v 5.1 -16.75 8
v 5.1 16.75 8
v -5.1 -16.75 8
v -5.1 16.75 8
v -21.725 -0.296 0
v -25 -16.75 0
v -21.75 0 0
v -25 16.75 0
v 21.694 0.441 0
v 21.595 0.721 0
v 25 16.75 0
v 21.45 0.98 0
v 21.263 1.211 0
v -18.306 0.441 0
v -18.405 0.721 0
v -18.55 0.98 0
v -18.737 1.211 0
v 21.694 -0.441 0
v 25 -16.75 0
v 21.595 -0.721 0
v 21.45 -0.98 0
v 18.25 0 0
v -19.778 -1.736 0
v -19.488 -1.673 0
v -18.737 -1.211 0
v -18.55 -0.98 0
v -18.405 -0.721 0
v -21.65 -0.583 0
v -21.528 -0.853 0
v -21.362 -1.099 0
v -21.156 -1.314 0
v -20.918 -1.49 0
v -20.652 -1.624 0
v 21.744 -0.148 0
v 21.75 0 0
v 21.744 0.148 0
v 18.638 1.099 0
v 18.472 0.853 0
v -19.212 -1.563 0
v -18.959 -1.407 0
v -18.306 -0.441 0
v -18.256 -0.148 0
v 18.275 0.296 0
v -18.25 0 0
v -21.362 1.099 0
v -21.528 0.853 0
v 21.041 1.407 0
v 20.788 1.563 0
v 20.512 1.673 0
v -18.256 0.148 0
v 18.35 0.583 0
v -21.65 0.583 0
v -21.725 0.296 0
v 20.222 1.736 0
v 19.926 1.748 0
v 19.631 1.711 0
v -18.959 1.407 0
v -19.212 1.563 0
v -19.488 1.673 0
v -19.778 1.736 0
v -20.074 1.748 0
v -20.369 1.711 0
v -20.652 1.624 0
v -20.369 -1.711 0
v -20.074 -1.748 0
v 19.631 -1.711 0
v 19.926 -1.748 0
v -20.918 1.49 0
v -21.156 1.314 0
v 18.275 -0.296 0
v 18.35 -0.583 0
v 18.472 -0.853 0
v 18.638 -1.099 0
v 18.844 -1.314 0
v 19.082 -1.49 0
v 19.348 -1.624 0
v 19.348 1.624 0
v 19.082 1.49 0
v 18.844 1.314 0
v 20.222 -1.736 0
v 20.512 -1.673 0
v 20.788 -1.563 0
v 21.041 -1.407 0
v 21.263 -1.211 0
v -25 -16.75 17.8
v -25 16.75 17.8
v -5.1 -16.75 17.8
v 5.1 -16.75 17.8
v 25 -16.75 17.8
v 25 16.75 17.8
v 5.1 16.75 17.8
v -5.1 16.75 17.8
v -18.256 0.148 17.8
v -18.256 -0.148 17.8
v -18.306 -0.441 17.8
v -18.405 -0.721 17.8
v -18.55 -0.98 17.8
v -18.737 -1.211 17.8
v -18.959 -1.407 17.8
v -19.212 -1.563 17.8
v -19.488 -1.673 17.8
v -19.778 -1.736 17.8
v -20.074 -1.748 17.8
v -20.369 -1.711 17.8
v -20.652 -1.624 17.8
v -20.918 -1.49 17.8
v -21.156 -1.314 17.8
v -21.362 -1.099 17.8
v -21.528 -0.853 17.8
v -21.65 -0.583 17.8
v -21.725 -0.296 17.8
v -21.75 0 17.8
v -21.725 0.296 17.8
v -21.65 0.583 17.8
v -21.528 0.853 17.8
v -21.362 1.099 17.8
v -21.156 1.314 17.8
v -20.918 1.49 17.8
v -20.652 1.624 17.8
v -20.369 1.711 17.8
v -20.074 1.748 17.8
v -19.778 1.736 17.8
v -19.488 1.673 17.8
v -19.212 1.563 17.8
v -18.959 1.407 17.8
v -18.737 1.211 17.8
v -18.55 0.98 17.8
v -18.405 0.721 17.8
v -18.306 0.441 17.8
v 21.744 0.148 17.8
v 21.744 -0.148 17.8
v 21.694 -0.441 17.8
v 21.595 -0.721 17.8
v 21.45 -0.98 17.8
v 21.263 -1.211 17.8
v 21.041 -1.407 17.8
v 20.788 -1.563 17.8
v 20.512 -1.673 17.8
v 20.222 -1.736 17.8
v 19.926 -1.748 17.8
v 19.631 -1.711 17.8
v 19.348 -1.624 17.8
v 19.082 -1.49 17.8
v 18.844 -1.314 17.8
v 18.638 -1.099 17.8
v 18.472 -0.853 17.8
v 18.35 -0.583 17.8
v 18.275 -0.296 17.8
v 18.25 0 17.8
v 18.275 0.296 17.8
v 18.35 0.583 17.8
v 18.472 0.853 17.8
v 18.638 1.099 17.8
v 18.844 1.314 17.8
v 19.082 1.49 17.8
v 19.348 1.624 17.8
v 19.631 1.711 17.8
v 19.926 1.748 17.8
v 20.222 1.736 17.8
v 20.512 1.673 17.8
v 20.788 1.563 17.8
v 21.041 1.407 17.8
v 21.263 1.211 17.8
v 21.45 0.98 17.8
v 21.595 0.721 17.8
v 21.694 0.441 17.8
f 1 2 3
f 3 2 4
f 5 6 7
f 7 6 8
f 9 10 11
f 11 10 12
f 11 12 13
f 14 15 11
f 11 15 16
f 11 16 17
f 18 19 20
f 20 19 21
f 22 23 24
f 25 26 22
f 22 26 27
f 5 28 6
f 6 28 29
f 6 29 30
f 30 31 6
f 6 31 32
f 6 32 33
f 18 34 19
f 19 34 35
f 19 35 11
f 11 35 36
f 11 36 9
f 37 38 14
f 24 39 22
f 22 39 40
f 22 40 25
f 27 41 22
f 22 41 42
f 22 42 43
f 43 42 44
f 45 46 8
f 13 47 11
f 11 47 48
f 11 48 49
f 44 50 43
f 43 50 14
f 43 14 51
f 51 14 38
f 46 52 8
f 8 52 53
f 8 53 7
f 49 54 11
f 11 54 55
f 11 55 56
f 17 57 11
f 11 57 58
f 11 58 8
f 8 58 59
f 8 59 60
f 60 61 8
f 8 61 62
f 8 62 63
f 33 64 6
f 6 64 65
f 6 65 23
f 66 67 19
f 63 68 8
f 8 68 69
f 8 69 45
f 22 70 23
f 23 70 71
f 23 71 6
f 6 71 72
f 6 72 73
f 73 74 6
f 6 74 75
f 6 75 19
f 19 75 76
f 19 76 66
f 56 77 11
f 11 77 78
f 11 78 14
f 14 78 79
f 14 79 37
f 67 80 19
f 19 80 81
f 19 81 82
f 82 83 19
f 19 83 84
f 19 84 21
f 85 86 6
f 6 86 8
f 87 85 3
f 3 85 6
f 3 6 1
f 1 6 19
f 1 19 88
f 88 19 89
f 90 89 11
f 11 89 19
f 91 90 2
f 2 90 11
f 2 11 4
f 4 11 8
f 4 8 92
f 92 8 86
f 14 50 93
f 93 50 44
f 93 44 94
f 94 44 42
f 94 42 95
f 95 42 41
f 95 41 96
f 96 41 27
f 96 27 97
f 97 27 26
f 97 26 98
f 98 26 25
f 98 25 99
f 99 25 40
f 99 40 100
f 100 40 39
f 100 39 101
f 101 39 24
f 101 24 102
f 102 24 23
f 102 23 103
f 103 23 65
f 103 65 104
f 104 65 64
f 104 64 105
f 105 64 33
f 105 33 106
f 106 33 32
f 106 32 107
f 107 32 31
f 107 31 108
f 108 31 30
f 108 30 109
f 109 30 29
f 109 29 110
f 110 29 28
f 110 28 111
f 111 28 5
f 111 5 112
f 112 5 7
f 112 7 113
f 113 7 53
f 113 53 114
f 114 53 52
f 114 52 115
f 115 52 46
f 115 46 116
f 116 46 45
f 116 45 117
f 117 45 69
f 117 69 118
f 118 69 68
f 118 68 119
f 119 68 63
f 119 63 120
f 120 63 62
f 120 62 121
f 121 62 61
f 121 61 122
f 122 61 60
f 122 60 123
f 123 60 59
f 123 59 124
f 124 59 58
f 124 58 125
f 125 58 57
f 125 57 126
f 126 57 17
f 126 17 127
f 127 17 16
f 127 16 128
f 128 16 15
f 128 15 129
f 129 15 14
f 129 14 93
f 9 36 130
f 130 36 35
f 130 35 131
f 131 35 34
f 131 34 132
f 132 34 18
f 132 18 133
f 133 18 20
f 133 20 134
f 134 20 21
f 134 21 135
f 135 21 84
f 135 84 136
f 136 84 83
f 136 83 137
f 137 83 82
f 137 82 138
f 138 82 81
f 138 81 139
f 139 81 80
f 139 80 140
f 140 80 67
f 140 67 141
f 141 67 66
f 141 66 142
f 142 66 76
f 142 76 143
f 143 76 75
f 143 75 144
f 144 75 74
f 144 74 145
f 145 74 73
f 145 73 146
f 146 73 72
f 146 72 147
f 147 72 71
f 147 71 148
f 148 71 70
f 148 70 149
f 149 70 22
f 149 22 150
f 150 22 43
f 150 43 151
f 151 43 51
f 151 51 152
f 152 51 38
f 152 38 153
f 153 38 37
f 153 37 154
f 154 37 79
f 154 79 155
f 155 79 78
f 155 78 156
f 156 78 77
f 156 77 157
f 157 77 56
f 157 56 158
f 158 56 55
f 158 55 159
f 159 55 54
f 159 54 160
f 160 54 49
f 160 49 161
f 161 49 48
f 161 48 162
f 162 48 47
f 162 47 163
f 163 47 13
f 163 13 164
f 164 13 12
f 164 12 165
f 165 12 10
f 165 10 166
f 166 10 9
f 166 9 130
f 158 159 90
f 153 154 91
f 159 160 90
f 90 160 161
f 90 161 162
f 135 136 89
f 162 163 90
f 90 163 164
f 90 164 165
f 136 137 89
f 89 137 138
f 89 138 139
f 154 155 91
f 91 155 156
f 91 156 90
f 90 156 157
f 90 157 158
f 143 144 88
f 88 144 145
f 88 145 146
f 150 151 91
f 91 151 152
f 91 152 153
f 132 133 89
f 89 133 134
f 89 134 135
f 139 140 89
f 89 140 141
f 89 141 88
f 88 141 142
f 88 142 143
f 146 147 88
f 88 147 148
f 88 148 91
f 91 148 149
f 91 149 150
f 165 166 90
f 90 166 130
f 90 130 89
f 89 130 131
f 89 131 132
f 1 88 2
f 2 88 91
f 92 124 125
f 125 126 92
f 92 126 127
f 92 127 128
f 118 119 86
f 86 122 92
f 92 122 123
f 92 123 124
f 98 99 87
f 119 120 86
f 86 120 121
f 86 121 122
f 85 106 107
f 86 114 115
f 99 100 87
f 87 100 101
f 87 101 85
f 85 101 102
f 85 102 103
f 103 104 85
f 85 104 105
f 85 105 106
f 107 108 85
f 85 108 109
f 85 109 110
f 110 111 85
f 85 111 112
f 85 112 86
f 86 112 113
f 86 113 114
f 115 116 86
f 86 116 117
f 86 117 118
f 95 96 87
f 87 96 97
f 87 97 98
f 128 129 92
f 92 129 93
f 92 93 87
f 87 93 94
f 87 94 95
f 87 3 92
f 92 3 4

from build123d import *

# Parameters (mm, degrees)
SKETCH2_W           = 50
SKETCH2_H           = 33.5
SKETCH2_R           = 1.75
BOSS_EXTRUDE1_DEPTH = 8
BOSS_EXTRUDE2_DEPTH = 33.5
SKETCH6_R           = 1.75
CUT_EXTRUDE1_DEPTH  = 18.8


with BuildPart() as part:
    # Sketch2 → Boss-Extrude1 (new body)
    with BuildSketch(Plane.XY):
        Rectangle(SKETCH2_W, SKETCH2_H)
        with Locations((-20, 0)):
            Circle(SKETCH2_R, mode=Mode.SUBTRACT)
        with Locations((20, 0)):
            Circle(SKETCH2_R, mode=Mode.SUBTRACT)
    extrude(amount=BOSS_EXTRUDE1_DEPTH)

    # Sketch5 → Boss-Extrude2 (add)
    with BuildSketch(Plane.XZ.offset(16.75)):
        with BuildLine():
            Line((-25, 8), (-25, 17.8))
            Line((-25, 17.8), (-5.1, 17.8))
            Line((-5.1, 17.8), (-5.1, 8))
            Line((-5.1, 8), (5.1, 8))
            Line((5.1, 8), (5.1, 17.8))
            Line((5.1, 17.8), (25, 17.8))
            Line((25, 17.8), (25, 8))
            ThreePointArc((25, 8), (0, 0), (-25, 8))
        make_face()
    extrude(amount=-BOSS_EXTRUDE2_DEPTH)

    # Sketch6 → Cut-Extrude1 (cut, through all)
    with BuildSketch(Plane(origin=(0, 0, 0), x_dir=(-1, 0, 0), z_dir=(0, 0, -1))):
        with Locations((20, 0)):
            Circle(SKETCH6_R)
        with Locations((-20, 0)):
            Circle(SKETCH6_R)
    extrude(amount=-CUT_EXTRUDE1_DEPTH, mode=Mode.SUBTRACT)


solid = part.part
